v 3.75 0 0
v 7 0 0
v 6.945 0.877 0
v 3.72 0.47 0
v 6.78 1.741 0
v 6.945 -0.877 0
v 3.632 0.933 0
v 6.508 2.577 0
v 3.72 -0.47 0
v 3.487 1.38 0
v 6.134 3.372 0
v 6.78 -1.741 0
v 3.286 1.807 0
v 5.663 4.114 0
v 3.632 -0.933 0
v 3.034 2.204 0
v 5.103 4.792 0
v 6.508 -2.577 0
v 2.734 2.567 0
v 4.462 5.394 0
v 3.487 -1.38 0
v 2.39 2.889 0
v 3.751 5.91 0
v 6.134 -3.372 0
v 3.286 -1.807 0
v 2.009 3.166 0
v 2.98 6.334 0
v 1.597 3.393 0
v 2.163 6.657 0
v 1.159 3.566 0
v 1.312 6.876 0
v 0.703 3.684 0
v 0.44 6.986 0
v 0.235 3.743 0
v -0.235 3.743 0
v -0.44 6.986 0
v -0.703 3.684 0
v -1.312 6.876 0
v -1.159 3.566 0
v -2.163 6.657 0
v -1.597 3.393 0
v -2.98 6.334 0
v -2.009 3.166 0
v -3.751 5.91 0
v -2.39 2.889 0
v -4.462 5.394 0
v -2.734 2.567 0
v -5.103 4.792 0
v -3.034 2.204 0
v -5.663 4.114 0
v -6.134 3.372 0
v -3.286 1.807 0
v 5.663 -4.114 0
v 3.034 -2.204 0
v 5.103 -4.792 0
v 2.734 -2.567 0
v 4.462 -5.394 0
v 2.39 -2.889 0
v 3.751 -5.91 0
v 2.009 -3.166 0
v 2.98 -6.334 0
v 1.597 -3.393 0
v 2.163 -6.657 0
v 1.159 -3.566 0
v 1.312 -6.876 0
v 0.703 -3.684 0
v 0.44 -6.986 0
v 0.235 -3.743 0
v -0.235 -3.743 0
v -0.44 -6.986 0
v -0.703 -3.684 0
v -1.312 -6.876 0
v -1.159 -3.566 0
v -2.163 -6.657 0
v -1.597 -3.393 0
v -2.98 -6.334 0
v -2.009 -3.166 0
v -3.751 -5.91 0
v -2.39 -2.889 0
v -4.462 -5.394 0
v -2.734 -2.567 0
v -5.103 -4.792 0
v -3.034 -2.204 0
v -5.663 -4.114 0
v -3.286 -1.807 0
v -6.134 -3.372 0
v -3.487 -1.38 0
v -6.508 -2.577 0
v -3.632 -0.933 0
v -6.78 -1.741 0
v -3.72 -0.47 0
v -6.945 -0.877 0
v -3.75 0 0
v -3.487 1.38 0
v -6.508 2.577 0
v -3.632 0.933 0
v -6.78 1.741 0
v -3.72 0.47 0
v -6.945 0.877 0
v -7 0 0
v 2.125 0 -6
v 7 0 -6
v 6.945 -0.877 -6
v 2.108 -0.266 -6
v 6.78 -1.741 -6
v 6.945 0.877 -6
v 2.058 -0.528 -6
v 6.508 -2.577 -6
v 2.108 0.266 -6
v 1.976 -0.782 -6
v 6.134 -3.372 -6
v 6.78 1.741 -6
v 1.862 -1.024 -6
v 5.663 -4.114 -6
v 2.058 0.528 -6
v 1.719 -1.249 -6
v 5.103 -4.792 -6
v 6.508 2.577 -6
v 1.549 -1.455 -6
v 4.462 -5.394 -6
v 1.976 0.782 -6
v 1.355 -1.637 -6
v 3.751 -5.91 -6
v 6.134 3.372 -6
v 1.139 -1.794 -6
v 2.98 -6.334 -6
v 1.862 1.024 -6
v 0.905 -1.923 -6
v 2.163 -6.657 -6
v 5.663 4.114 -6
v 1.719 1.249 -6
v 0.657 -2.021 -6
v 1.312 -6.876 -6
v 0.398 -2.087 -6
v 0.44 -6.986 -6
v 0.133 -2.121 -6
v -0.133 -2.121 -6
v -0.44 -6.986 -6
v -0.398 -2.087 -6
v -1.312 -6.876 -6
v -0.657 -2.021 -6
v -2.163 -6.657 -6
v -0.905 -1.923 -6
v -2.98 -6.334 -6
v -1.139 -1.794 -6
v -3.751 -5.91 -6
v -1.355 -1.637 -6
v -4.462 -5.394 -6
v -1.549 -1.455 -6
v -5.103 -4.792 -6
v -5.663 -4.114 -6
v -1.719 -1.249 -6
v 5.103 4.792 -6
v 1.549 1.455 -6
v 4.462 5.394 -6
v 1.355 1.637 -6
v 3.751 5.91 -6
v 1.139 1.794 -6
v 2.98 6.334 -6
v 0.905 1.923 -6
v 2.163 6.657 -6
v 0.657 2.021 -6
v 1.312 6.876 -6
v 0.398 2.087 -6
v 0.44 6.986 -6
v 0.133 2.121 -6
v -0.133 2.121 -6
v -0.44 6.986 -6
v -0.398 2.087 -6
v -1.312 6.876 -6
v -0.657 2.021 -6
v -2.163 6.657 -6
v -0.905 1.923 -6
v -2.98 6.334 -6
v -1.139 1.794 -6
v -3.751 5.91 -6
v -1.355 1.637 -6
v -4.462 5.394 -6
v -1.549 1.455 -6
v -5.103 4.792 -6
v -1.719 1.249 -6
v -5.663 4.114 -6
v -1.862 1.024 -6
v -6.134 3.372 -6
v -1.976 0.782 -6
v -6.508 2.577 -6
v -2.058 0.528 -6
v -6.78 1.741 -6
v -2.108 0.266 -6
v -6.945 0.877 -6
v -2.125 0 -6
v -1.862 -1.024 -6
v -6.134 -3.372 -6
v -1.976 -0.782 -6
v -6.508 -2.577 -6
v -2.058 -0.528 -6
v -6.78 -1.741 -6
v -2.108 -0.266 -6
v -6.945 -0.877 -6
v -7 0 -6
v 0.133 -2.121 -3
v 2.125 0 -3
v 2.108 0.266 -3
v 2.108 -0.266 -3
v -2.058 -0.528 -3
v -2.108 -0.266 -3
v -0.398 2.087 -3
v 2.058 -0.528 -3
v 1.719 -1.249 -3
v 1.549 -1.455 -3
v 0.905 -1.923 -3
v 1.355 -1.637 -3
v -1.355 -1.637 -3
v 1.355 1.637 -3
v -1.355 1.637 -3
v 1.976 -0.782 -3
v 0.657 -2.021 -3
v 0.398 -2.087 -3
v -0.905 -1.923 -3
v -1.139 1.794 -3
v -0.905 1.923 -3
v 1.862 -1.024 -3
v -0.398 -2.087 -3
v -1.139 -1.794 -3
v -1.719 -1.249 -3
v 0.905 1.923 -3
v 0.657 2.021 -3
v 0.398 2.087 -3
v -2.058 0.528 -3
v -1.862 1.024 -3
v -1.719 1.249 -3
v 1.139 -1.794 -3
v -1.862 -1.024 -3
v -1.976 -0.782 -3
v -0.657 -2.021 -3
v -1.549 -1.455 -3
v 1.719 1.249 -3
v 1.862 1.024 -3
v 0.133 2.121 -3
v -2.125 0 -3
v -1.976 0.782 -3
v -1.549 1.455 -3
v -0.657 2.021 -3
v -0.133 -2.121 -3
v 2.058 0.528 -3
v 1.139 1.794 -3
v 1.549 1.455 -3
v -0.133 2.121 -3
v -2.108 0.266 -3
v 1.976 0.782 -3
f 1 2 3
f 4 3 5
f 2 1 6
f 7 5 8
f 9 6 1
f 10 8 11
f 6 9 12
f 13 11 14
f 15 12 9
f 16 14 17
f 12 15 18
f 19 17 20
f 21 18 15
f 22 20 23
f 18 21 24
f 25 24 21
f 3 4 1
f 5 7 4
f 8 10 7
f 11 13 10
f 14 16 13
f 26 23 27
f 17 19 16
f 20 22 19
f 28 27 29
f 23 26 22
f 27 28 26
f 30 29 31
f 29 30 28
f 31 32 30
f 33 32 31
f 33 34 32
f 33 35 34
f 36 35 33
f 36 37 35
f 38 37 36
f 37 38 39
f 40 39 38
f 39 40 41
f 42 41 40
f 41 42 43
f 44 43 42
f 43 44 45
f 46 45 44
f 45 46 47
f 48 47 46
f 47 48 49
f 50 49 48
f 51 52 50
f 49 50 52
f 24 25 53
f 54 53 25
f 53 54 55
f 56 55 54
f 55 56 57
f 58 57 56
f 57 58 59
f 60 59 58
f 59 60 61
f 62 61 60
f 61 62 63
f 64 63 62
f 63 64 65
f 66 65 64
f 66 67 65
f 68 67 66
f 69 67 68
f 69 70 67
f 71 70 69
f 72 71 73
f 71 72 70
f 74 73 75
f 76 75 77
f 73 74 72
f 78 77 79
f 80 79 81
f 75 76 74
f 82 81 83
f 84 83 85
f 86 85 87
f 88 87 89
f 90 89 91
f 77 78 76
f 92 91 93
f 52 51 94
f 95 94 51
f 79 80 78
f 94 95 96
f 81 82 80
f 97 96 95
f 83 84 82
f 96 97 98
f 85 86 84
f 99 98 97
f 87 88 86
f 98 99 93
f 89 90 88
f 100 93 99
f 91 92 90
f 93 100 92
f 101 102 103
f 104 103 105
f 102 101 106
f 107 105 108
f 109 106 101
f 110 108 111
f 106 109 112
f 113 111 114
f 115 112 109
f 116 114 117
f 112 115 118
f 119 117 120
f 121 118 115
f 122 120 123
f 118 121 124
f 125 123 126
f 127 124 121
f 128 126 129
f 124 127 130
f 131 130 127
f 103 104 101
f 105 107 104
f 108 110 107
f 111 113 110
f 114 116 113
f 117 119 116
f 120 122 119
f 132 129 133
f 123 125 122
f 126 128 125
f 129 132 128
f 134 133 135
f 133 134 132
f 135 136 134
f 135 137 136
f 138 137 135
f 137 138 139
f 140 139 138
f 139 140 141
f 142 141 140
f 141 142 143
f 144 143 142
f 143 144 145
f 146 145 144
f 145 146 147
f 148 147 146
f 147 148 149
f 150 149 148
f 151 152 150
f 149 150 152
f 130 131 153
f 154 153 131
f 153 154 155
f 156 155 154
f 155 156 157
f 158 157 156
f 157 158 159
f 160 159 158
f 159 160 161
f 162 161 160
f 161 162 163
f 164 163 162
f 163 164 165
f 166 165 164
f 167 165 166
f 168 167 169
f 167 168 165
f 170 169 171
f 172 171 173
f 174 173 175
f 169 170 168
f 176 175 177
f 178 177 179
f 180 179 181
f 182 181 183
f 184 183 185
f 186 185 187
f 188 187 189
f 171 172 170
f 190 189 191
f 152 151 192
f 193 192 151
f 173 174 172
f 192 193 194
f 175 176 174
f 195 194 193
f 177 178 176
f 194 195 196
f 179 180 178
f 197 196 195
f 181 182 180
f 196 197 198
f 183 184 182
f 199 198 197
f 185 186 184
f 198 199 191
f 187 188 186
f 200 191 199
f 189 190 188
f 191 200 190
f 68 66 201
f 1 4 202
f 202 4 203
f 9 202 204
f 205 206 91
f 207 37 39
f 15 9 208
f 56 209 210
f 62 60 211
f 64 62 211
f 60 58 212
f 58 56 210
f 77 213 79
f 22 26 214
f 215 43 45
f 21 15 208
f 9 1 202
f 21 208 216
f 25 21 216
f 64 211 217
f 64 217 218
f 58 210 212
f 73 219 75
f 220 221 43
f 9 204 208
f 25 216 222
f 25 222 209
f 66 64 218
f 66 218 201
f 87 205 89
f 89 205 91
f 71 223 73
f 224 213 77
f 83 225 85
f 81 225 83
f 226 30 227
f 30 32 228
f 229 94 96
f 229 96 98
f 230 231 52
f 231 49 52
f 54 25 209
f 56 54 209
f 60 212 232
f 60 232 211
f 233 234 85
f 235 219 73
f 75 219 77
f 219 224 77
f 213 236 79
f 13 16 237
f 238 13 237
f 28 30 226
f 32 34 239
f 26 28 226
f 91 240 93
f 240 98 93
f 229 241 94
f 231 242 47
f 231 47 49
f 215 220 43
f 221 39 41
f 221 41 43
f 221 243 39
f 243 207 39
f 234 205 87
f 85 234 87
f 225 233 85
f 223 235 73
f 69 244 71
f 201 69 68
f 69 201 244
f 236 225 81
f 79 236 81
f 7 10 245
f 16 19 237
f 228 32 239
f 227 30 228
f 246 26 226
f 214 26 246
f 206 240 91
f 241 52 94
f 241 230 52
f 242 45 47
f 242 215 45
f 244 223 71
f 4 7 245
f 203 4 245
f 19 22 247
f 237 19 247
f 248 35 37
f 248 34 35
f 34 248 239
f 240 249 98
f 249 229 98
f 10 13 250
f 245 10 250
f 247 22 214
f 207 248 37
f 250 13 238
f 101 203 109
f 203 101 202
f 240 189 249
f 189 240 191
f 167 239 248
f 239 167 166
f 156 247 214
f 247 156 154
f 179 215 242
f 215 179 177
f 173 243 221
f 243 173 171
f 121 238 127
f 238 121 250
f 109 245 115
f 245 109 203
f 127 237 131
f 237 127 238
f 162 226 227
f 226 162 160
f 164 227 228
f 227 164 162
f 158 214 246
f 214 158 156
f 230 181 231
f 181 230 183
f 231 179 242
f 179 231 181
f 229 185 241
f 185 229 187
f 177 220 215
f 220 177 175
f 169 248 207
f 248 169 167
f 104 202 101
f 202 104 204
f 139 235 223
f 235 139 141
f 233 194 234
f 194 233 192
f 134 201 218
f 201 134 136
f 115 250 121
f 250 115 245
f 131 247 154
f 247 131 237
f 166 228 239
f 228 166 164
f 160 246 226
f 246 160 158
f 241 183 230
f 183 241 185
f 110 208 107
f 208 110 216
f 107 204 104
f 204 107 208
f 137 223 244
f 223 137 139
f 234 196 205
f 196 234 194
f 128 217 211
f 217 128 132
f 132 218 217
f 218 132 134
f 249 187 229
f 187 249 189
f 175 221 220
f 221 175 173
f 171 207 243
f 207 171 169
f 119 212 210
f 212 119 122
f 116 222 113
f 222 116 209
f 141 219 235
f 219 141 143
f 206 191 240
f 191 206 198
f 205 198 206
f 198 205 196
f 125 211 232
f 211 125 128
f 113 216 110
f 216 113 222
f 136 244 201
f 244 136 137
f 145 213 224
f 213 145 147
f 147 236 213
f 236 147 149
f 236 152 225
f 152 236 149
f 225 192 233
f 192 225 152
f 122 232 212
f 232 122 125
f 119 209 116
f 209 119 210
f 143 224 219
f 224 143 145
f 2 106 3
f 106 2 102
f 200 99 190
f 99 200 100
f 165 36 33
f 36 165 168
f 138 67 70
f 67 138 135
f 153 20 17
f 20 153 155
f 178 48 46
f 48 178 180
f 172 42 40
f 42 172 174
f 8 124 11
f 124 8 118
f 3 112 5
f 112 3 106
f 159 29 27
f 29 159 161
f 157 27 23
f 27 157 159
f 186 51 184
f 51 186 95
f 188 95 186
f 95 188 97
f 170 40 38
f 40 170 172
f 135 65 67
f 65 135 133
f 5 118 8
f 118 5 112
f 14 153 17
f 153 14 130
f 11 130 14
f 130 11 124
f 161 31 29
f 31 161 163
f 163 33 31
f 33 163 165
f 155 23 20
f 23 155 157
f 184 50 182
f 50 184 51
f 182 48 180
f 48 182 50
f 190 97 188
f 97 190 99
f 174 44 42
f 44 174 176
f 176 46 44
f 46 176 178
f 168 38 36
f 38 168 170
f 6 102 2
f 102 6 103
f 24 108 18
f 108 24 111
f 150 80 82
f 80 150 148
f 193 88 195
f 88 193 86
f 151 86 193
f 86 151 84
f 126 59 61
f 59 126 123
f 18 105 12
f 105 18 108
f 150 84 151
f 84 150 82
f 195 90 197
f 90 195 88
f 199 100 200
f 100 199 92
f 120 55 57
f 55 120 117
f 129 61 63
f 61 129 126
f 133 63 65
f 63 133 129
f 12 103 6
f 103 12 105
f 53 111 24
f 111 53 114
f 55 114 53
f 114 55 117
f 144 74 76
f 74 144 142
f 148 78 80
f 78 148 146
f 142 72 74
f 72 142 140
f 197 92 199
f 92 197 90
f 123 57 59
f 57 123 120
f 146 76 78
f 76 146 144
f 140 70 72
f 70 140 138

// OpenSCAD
$fn = 50;


difference() {
	union() {
		translate(v = [0, 0, -6.0000000000]) {
			cylinder(h = 6, r = 7.0000000000);
		}
		cylinder(h = 0, r = 10.0000000000);
	}
	union() {
		translate(v = [0, 0, 0]) {
			rotate(a = [0, 0, 0]) {
				difference() {
					union() {
						#translate(v = [0, 0, -6.0000000000]) {
							cylinder(h = 6, r = 2.0000000000);
						}
						#translate(v = [0, 0, -3]) {
							cylinder(h = 3, r = 7.0000000000, r1 = 2.1250000000, r2 = 3.7500000000);
						}
						#translate(v = [0, 0, -6.0000000000]) {
							cylinder(h = 6, r = 2.1250000000);
						}
						#translate(v = [0, 0, -6.0000000000]) {
							cylinder(h = 6, r = 2.0000000000);
						}
					}
					union();
				}
			}
		}
	}
}
